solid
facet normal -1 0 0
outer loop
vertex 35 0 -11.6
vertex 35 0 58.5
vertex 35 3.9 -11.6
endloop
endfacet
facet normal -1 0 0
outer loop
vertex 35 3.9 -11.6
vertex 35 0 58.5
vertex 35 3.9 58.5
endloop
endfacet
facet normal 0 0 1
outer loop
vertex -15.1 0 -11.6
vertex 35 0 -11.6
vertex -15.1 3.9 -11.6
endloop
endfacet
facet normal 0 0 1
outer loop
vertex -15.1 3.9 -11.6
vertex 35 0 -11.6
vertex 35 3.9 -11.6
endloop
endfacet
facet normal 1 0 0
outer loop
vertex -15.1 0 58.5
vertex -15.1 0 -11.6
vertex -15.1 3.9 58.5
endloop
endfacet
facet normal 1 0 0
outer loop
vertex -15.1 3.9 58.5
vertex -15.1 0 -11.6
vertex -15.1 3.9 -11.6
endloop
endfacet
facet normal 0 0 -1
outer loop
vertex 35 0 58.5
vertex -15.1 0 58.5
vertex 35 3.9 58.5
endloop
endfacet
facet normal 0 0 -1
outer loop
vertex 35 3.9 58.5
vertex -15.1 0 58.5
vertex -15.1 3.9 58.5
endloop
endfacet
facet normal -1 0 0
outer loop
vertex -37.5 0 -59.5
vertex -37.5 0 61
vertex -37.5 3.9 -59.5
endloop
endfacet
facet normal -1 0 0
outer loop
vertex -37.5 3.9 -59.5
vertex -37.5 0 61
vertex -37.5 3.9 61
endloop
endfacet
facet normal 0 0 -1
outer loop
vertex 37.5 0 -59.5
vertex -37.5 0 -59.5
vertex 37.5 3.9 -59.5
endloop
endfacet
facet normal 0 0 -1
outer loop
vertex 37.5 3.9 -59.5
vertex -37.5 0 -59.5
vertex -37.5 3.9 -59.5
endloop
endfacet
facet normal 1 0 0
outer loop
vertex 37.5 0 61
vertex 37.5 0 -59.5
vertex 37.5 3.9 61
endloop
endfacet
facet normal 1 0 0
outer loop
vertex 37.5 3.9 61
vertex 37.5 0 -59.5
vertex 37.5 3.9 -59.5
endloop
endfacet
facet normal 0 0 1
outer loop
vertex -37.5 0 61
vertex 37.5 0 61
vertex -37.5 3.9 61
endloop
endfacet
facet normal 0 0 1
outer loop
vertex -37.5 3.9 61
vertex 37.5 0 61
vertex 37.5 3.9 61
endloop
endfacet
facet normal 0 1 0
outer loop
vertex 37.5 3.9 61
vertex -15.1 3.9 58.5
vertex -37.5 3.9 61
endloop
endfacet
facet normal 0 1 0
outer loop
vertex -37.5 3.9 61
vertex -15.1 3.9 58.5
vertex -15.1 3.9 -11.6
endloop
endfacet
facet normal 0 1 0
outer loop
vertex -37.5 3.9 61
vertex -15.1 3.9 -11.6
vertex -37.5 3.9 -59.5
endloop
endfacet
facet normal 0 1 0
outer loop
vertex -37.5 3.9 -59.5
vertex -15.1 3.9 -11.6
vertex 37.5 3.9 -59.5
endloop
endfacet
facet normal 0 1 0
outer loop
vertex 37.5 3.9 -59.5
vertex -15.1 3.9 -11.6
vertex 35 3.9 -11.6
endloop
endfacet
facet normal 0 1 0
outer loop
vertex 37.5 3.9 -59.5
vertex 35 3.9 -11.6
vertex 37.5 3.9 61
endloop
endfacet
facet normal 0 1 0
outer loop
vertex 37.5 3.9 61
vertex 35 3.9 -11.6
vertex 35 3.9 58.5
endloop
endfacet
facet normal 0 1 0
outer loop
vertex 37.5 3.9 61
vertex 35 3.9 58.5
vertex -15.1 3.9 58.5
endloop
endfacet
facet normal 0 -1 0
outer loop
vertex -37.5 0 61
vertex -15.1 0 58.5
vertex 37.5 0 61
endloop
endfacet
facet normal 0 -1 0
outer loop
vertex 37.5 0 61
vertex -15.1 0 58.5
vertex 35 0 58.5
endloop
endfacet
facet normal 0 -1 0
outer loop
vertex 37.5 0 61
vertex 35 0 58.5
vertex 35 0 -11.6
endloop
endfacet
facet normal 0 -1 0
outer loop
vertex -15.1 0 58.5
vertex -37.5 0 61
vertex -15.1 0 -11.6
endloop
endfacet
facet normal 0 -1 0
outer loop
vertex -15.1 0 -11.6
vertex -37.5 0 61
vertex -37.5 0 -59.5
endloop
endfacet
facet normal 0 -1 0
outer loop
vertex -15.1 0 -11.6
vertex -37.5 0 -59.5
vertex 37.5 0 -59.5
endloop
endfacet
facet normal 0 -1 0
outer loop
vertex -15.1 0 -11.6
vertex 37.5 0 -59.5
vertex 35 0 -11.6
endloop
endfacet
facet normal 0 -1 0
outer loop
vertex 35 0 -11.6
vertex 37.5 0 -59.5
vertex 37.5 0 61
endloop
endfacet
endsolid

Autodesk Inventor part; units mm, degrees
ref_plane "YZ Plane" through (0, 0, 0) normal (1, 0, 0) x (0, 1, 0)
ref_plane "XZ Plane" through (0, 0, 0) normal (0, 1, 0) x (-1, 0, 0)
ref_plane "XY Plane" through (0, 0, 0) normal (0, 0, 1) x (1, 0, 0)
sketch "Sketch2" plane through (0, 0, 0) normal (0, 1, 0) x (-1, 0, 0)
  line L0 (37.5, 59.5) -> (-37.5, 59.5)
  line L1 (-37.5, 59.5) -> (-37.5, -59.5)
  line L2 (-37.5, -59.5) -> (37.5, -59.5)
  line L3 (37.5, -59.5) -> (37.5, 59.5)
  line L4 (37.5, 59.5) -> (-37.5, -59.5) construction
  line L5 (-37.5, 59.5) -> (37.5, -59.5) construction
  line L6 (-35, 58.5) -> (15.1, 58.5)
  line L7 (15.1, 58.5) -> (15.1, -11.6)
  line L8 (15.1, -11.6) -> (-35, -11.6)
  line L9 (-35, -11.6) -> (-35, 58.5)
  line L10 (-37.5, 59.5) -> (37.5, 59.5)
  line L11 (37.5, 59.5) -> (37.5, 61)
  line L12 (37.5, 61) -> (-37.5, 61)
  line L13 (-37.5, 61) -> (-37.5, 59.5)
  point P0 (0, 0)
  dimension "d8" = 119
  dimension "d9" = 75
  dimension "d10" = 2.5
  dimension "d11" = 1
  dimension "d12" = 70.1
  dimension "d13" = 50.1
  dimension "d14" = 1.5
extrude "Extrusion2" add sketch "Sketch2" along normal blind 3.9
properties part number "lid" material "Acetal Resin, Black"
